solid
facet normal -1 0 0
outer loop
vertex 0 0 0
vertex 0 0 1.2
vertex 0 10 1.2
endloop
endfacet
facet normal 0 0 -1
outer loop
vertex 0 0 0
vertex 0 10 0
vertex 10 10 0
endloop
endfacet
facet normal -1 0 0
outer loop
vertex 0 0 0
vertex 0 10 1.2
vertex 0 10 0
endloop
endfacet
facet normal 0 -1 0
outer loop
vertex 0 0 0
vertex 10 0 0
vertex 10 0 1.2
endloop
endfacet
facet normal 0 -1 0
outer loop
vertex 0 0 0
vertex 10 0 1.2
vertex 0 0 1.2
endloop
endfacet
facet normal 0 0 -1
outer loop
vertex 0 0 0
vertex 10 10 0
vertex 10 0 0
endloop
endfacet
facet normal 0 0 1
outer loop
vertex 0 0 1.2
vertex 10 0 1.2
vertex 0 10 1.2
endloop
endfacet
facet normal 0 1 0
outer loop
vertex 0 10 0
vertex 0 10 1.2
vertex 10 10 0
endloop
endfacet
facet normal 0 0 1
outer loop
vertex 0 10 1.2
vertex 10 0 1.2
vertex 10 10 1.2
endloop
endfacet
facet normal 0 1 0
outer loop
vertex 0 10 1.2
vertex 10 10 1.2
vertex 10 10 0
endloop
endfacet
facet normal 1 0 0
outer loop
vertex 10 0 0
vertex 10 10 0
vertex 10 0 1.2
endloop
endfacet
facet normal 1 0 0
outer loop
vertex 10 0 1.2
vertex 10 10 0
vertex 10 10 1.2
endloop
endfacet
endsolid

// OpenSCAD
/* Warning, this is a very basic generator with a lot of approximation 
input data : [TFBGA, AJA, 10x10x1.2mm, 121, , A, C04-01216A]
generated by com.zoubworld.electronics.cad.model3d.Basic
Date : Sun Feb 15 10:50:49 CET 2026
*/

//body
color("black")
translate([0,0,0])
cube([10.0,10.0,1.2], center=false);
